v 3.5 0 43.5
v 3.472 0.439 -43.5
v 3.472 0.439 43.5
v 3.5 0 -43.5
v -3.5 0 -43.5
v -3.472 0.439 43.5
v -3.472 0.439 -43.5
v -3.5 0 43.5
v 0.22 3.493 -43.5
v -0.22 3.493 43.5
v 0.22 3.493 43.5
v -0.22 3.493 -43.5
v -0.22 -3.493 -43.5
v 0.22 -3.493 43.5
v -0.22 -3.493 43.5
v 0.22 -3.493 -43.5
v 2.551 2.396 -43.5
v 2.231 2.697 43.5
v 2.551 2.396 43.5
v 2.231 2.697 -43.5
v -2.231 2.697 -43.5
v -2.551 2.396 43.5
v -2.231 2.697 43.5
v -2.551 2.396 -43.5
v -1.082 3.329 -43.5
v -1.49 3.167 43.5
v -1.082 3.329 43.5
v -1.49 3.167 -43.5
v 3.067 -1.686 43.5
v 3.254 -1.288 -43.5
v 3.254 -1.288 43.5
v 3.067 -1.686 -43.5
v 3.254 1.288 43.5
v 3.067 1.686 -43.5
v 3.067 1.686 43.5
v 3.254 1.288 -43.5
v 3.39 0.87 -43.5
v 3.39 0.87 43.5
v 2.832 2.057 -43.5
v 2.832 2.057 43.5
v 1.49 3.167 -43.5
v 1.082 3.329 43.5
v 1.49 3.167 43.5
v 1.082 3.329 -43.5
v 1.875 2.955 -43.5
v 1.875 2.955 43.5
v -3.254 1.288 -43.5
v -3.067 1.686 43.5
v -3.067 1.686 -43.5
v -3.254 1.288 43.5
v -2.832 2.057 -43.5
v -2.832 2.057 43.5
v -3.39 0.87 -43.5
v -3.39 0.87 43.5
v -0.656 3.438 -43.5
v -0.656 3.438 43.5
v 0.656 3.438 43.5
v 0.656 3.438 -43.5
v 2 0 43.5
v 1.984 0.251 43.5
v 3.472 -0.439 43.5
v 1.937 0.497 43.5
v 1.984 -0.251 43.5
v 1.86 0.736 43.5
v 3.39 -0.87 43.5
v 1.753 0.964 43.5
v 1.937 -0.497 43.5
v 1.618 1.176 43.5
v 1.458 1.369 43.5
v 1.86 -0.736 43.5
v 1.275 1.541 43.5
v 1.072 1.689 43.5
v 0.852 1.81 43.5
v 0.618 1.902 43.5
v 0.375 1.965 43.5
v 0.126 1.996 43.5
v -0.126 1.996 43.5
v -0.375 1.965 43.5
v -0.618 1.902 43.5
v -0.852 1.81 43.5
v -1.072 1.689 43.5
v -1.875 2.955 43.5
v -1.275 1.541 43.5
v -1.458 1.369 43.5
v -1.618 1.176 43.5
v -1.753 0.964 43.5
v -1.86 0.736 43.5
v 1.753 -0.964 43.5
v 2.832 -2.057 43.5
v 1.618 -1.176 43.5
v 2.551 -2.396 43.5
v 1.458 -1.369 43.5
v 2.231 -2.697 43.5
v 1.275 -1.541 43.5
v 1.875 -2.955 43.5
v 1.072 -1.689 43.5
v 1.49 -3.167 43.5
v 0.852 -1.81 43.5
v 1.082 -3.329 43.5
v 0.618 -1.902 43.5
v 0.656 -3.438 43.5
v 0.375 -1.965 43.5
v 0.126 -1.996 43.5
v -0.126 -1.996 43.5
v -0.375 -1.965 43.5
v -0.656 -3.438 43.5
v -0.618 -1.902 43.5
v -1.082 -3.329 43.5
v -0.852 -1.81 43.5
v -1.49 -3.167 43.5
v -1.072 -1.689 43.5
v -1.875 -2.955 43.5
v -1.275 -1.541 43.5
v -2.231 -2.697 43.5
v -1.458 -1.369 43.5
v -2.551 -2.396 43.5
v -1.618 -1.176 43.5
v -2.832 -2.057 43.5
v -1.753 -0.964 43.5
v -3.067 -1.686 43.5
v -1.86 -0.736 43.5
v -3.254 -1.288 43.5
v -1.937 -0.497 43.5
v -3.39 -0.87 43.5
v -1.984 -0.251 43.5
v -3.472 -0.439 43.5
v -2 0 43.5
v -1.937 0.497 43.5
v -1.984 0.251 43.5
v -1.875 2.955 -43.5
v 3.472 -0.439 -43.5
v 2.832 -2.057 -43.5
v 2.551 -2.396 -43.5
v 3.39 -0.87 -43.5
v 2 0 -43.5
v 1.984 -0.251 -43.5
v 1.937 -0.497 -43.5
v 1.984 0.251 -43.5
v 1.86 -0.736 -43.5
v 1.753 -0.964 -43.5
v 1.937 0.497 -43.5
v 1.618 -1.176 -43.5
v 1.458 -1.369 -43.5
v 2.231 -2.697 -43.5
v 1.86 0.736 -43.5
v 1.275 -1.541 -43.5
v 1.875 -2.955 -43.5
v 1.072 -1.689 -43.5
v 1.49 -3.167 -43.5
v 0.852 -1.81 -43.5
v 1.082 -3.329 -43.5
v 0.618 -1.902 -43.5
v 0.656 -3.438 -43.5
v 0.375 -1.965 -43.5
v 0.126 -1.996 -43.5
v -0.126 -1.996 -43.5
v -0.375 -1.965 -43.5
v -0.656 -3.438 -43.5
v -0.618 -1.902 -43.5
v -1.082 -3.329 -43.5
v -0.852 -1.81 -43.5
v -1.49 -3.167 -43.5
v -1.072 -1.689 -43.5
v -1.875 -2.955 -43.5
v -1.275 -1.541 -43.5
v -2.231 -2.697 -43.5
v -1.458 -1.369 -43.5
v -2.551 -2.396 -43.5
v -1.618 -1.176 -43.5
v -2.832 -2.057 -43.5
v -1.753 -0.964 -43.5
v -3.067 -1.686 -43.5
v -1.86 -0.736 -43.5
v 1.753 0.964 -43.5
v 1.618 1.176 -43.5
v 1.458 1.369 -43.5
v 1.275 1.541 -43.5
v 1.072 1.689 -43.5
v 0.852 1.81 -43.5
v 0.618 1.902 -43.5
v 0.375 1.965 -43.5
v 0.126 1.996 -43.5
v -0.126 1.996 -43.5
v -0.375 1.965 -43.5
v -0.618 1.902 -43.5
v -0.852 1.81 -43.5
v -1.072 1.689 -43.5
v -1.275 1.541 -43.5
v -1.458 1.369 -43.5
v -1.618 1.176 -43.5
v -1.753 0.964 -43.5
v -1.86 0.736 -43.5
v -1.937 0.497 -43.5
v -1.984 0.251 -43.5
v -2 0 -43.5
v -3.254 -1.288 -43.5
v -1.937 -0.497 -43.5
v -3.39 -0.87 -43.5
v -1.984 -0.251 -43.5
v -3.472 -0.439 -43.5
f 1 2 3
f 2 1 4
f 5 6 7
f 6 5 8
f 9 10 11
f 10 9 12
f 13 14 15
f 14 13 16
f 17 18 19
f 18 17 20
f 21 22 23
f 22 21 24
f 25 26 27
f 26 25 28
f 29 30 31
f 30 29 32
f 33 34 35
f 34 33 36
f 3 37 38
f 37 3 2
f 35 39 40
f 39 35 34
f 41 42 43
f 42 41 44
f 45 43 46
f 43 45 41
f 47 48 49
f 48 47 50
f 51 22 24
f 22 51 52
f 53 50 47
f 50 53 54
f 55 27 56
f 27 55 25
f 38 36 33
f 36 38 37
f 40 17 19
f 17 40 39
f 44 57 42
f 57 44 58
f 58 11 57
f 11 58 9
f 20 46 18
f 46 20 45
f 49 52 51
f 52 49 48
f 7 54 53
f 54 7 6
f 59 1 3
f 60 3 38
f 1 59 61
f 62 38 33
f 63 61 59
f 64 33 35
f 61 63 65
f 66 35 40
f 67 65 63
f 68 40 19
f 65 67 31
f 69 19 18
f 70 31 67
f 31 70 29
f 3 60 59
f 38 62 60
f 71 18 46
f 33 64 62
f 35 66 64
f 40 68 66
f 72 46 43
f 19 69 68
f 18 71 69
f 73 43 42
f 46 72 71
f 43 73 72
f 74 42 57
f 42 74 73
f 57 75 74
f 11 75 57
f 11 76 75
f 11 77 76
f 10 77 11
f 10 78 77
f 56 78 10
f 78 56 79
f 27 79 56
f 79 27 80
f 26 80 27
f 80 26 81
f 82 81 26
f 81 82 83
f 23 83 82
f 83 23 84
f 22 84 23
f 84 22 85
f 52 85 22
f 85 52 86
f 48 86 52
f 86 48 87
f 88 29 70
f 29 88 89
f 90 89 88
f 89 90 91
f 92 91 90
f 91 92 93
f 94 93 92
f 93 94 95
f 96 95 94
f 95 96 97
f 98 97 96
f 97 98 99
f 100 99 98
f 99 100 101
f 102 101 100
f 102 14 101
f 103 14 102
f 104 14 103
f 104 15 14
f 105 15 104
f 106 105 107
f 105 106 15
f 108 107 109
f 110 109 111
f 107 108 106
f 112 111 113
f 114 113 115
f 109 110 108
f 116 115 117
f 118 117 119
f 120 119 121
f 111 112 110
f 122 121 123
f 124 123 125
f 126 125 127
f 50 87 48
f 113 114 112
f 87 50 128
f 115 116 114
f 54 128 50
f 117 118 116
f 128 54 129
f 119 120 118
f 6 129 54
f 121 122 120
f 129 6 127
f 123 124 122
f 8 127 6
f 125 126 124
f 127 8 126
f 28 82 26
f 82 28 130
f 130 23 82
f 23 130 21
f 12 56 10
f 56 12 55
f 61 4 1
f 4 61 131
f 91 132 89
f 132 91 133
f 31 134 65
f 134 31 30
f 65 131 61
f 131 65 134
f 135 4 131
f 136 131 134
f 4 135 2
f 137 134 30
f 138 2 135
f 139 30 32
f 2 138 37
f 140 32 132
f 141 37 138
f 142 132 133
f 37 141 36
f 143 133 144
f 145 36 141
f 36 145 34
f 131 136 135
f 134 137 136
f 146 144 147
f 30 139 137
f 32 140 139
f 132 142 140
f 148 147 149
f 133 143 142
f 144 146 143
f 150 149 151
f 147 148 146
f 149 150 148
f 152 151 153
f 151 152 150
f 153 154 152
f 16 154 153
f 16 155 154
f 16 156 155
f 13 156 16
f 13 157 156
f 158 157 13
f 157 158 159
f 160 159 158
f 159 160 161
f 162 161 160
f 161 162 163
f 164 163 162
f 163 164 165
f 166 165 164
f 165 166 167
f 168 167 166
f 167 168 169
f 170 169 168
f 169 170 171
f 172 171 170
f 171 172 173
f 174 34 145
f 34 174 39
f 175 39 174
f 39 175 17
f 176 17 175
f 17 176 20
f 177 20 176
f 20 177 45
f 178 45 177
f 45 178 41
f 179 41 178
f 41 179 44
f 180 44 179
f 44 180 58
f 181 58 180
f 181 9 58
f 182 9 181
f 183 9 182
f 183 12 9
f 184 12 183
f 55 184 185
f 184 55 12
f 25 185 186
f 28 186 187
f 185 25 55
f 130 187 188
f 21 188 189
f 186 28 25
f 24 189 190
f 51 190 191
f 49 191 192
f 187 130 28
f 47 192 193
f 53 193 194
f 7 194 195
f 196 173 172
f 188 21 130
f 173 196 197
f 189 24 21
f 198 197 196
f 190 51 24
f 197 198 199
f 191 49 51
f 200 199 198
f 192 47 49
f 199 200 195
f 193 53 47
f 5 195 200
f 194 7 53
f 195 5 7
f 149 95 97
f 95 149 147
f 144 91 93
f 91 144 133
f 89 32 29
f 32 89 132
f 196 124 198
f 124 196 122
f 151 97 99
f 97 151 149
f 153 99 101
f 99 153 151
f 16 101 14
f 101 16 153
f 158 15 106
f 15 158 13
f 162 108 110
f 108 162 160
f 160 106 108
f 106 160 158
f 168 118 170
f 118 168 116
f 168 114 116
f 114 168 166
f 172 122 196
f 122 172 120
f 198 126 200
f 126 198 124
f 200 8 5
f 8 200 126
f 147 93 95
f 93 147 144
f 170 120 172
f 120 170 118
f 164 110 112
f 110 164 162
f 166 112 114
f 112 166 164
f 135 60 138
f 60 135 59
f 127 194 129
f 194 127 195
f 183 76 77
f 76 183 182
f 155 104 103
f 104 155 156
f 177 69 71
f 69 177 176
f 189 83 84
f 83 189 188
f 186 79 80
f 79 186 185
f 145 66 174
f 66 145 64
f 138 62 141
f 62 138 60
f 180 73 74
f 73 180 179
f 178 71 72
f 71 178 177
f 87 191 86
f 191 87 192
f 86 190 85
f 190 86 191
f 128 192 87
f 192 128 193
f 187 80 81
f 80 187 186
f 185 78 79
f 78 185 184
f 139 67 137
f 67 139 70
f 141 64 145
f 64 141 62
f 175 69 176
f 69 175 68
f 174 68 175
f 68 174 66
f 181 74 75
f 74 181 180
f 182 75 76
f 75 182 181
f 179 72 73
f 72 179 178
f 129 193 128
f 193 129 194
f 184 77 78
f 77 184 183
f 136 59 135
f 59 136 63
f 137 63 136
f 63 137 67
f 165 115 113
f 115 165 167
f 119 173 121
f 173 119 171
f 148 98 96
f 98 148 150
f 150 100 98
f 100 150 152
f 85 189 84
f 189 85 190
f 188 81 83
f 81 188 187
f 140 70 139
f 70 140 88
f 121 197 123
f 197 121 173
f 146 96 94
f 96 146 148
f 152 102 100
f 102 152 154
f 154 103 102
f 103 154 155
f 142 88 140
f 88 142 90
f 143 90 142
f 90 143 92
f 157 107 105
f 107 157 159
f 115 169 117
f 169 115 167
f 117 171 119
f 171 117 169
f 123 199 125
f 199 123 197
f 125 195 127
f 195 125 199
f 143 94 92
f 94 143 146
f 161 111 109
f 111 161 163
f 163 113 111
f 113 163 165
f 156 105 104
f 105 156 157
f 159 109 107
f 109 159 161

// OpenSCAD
$fn = 50;


difference() {
	union() {
		translate(v = [0, 0, -43.5000000000]) {
			cylinder(h = 87, r = 3.5000000000);
		}
	}
	union() {
		translate(v = [0, 0, -100.0000000000]) {
			cylinder(h = 200, r = 2.0000000000);
		}
	}
}
